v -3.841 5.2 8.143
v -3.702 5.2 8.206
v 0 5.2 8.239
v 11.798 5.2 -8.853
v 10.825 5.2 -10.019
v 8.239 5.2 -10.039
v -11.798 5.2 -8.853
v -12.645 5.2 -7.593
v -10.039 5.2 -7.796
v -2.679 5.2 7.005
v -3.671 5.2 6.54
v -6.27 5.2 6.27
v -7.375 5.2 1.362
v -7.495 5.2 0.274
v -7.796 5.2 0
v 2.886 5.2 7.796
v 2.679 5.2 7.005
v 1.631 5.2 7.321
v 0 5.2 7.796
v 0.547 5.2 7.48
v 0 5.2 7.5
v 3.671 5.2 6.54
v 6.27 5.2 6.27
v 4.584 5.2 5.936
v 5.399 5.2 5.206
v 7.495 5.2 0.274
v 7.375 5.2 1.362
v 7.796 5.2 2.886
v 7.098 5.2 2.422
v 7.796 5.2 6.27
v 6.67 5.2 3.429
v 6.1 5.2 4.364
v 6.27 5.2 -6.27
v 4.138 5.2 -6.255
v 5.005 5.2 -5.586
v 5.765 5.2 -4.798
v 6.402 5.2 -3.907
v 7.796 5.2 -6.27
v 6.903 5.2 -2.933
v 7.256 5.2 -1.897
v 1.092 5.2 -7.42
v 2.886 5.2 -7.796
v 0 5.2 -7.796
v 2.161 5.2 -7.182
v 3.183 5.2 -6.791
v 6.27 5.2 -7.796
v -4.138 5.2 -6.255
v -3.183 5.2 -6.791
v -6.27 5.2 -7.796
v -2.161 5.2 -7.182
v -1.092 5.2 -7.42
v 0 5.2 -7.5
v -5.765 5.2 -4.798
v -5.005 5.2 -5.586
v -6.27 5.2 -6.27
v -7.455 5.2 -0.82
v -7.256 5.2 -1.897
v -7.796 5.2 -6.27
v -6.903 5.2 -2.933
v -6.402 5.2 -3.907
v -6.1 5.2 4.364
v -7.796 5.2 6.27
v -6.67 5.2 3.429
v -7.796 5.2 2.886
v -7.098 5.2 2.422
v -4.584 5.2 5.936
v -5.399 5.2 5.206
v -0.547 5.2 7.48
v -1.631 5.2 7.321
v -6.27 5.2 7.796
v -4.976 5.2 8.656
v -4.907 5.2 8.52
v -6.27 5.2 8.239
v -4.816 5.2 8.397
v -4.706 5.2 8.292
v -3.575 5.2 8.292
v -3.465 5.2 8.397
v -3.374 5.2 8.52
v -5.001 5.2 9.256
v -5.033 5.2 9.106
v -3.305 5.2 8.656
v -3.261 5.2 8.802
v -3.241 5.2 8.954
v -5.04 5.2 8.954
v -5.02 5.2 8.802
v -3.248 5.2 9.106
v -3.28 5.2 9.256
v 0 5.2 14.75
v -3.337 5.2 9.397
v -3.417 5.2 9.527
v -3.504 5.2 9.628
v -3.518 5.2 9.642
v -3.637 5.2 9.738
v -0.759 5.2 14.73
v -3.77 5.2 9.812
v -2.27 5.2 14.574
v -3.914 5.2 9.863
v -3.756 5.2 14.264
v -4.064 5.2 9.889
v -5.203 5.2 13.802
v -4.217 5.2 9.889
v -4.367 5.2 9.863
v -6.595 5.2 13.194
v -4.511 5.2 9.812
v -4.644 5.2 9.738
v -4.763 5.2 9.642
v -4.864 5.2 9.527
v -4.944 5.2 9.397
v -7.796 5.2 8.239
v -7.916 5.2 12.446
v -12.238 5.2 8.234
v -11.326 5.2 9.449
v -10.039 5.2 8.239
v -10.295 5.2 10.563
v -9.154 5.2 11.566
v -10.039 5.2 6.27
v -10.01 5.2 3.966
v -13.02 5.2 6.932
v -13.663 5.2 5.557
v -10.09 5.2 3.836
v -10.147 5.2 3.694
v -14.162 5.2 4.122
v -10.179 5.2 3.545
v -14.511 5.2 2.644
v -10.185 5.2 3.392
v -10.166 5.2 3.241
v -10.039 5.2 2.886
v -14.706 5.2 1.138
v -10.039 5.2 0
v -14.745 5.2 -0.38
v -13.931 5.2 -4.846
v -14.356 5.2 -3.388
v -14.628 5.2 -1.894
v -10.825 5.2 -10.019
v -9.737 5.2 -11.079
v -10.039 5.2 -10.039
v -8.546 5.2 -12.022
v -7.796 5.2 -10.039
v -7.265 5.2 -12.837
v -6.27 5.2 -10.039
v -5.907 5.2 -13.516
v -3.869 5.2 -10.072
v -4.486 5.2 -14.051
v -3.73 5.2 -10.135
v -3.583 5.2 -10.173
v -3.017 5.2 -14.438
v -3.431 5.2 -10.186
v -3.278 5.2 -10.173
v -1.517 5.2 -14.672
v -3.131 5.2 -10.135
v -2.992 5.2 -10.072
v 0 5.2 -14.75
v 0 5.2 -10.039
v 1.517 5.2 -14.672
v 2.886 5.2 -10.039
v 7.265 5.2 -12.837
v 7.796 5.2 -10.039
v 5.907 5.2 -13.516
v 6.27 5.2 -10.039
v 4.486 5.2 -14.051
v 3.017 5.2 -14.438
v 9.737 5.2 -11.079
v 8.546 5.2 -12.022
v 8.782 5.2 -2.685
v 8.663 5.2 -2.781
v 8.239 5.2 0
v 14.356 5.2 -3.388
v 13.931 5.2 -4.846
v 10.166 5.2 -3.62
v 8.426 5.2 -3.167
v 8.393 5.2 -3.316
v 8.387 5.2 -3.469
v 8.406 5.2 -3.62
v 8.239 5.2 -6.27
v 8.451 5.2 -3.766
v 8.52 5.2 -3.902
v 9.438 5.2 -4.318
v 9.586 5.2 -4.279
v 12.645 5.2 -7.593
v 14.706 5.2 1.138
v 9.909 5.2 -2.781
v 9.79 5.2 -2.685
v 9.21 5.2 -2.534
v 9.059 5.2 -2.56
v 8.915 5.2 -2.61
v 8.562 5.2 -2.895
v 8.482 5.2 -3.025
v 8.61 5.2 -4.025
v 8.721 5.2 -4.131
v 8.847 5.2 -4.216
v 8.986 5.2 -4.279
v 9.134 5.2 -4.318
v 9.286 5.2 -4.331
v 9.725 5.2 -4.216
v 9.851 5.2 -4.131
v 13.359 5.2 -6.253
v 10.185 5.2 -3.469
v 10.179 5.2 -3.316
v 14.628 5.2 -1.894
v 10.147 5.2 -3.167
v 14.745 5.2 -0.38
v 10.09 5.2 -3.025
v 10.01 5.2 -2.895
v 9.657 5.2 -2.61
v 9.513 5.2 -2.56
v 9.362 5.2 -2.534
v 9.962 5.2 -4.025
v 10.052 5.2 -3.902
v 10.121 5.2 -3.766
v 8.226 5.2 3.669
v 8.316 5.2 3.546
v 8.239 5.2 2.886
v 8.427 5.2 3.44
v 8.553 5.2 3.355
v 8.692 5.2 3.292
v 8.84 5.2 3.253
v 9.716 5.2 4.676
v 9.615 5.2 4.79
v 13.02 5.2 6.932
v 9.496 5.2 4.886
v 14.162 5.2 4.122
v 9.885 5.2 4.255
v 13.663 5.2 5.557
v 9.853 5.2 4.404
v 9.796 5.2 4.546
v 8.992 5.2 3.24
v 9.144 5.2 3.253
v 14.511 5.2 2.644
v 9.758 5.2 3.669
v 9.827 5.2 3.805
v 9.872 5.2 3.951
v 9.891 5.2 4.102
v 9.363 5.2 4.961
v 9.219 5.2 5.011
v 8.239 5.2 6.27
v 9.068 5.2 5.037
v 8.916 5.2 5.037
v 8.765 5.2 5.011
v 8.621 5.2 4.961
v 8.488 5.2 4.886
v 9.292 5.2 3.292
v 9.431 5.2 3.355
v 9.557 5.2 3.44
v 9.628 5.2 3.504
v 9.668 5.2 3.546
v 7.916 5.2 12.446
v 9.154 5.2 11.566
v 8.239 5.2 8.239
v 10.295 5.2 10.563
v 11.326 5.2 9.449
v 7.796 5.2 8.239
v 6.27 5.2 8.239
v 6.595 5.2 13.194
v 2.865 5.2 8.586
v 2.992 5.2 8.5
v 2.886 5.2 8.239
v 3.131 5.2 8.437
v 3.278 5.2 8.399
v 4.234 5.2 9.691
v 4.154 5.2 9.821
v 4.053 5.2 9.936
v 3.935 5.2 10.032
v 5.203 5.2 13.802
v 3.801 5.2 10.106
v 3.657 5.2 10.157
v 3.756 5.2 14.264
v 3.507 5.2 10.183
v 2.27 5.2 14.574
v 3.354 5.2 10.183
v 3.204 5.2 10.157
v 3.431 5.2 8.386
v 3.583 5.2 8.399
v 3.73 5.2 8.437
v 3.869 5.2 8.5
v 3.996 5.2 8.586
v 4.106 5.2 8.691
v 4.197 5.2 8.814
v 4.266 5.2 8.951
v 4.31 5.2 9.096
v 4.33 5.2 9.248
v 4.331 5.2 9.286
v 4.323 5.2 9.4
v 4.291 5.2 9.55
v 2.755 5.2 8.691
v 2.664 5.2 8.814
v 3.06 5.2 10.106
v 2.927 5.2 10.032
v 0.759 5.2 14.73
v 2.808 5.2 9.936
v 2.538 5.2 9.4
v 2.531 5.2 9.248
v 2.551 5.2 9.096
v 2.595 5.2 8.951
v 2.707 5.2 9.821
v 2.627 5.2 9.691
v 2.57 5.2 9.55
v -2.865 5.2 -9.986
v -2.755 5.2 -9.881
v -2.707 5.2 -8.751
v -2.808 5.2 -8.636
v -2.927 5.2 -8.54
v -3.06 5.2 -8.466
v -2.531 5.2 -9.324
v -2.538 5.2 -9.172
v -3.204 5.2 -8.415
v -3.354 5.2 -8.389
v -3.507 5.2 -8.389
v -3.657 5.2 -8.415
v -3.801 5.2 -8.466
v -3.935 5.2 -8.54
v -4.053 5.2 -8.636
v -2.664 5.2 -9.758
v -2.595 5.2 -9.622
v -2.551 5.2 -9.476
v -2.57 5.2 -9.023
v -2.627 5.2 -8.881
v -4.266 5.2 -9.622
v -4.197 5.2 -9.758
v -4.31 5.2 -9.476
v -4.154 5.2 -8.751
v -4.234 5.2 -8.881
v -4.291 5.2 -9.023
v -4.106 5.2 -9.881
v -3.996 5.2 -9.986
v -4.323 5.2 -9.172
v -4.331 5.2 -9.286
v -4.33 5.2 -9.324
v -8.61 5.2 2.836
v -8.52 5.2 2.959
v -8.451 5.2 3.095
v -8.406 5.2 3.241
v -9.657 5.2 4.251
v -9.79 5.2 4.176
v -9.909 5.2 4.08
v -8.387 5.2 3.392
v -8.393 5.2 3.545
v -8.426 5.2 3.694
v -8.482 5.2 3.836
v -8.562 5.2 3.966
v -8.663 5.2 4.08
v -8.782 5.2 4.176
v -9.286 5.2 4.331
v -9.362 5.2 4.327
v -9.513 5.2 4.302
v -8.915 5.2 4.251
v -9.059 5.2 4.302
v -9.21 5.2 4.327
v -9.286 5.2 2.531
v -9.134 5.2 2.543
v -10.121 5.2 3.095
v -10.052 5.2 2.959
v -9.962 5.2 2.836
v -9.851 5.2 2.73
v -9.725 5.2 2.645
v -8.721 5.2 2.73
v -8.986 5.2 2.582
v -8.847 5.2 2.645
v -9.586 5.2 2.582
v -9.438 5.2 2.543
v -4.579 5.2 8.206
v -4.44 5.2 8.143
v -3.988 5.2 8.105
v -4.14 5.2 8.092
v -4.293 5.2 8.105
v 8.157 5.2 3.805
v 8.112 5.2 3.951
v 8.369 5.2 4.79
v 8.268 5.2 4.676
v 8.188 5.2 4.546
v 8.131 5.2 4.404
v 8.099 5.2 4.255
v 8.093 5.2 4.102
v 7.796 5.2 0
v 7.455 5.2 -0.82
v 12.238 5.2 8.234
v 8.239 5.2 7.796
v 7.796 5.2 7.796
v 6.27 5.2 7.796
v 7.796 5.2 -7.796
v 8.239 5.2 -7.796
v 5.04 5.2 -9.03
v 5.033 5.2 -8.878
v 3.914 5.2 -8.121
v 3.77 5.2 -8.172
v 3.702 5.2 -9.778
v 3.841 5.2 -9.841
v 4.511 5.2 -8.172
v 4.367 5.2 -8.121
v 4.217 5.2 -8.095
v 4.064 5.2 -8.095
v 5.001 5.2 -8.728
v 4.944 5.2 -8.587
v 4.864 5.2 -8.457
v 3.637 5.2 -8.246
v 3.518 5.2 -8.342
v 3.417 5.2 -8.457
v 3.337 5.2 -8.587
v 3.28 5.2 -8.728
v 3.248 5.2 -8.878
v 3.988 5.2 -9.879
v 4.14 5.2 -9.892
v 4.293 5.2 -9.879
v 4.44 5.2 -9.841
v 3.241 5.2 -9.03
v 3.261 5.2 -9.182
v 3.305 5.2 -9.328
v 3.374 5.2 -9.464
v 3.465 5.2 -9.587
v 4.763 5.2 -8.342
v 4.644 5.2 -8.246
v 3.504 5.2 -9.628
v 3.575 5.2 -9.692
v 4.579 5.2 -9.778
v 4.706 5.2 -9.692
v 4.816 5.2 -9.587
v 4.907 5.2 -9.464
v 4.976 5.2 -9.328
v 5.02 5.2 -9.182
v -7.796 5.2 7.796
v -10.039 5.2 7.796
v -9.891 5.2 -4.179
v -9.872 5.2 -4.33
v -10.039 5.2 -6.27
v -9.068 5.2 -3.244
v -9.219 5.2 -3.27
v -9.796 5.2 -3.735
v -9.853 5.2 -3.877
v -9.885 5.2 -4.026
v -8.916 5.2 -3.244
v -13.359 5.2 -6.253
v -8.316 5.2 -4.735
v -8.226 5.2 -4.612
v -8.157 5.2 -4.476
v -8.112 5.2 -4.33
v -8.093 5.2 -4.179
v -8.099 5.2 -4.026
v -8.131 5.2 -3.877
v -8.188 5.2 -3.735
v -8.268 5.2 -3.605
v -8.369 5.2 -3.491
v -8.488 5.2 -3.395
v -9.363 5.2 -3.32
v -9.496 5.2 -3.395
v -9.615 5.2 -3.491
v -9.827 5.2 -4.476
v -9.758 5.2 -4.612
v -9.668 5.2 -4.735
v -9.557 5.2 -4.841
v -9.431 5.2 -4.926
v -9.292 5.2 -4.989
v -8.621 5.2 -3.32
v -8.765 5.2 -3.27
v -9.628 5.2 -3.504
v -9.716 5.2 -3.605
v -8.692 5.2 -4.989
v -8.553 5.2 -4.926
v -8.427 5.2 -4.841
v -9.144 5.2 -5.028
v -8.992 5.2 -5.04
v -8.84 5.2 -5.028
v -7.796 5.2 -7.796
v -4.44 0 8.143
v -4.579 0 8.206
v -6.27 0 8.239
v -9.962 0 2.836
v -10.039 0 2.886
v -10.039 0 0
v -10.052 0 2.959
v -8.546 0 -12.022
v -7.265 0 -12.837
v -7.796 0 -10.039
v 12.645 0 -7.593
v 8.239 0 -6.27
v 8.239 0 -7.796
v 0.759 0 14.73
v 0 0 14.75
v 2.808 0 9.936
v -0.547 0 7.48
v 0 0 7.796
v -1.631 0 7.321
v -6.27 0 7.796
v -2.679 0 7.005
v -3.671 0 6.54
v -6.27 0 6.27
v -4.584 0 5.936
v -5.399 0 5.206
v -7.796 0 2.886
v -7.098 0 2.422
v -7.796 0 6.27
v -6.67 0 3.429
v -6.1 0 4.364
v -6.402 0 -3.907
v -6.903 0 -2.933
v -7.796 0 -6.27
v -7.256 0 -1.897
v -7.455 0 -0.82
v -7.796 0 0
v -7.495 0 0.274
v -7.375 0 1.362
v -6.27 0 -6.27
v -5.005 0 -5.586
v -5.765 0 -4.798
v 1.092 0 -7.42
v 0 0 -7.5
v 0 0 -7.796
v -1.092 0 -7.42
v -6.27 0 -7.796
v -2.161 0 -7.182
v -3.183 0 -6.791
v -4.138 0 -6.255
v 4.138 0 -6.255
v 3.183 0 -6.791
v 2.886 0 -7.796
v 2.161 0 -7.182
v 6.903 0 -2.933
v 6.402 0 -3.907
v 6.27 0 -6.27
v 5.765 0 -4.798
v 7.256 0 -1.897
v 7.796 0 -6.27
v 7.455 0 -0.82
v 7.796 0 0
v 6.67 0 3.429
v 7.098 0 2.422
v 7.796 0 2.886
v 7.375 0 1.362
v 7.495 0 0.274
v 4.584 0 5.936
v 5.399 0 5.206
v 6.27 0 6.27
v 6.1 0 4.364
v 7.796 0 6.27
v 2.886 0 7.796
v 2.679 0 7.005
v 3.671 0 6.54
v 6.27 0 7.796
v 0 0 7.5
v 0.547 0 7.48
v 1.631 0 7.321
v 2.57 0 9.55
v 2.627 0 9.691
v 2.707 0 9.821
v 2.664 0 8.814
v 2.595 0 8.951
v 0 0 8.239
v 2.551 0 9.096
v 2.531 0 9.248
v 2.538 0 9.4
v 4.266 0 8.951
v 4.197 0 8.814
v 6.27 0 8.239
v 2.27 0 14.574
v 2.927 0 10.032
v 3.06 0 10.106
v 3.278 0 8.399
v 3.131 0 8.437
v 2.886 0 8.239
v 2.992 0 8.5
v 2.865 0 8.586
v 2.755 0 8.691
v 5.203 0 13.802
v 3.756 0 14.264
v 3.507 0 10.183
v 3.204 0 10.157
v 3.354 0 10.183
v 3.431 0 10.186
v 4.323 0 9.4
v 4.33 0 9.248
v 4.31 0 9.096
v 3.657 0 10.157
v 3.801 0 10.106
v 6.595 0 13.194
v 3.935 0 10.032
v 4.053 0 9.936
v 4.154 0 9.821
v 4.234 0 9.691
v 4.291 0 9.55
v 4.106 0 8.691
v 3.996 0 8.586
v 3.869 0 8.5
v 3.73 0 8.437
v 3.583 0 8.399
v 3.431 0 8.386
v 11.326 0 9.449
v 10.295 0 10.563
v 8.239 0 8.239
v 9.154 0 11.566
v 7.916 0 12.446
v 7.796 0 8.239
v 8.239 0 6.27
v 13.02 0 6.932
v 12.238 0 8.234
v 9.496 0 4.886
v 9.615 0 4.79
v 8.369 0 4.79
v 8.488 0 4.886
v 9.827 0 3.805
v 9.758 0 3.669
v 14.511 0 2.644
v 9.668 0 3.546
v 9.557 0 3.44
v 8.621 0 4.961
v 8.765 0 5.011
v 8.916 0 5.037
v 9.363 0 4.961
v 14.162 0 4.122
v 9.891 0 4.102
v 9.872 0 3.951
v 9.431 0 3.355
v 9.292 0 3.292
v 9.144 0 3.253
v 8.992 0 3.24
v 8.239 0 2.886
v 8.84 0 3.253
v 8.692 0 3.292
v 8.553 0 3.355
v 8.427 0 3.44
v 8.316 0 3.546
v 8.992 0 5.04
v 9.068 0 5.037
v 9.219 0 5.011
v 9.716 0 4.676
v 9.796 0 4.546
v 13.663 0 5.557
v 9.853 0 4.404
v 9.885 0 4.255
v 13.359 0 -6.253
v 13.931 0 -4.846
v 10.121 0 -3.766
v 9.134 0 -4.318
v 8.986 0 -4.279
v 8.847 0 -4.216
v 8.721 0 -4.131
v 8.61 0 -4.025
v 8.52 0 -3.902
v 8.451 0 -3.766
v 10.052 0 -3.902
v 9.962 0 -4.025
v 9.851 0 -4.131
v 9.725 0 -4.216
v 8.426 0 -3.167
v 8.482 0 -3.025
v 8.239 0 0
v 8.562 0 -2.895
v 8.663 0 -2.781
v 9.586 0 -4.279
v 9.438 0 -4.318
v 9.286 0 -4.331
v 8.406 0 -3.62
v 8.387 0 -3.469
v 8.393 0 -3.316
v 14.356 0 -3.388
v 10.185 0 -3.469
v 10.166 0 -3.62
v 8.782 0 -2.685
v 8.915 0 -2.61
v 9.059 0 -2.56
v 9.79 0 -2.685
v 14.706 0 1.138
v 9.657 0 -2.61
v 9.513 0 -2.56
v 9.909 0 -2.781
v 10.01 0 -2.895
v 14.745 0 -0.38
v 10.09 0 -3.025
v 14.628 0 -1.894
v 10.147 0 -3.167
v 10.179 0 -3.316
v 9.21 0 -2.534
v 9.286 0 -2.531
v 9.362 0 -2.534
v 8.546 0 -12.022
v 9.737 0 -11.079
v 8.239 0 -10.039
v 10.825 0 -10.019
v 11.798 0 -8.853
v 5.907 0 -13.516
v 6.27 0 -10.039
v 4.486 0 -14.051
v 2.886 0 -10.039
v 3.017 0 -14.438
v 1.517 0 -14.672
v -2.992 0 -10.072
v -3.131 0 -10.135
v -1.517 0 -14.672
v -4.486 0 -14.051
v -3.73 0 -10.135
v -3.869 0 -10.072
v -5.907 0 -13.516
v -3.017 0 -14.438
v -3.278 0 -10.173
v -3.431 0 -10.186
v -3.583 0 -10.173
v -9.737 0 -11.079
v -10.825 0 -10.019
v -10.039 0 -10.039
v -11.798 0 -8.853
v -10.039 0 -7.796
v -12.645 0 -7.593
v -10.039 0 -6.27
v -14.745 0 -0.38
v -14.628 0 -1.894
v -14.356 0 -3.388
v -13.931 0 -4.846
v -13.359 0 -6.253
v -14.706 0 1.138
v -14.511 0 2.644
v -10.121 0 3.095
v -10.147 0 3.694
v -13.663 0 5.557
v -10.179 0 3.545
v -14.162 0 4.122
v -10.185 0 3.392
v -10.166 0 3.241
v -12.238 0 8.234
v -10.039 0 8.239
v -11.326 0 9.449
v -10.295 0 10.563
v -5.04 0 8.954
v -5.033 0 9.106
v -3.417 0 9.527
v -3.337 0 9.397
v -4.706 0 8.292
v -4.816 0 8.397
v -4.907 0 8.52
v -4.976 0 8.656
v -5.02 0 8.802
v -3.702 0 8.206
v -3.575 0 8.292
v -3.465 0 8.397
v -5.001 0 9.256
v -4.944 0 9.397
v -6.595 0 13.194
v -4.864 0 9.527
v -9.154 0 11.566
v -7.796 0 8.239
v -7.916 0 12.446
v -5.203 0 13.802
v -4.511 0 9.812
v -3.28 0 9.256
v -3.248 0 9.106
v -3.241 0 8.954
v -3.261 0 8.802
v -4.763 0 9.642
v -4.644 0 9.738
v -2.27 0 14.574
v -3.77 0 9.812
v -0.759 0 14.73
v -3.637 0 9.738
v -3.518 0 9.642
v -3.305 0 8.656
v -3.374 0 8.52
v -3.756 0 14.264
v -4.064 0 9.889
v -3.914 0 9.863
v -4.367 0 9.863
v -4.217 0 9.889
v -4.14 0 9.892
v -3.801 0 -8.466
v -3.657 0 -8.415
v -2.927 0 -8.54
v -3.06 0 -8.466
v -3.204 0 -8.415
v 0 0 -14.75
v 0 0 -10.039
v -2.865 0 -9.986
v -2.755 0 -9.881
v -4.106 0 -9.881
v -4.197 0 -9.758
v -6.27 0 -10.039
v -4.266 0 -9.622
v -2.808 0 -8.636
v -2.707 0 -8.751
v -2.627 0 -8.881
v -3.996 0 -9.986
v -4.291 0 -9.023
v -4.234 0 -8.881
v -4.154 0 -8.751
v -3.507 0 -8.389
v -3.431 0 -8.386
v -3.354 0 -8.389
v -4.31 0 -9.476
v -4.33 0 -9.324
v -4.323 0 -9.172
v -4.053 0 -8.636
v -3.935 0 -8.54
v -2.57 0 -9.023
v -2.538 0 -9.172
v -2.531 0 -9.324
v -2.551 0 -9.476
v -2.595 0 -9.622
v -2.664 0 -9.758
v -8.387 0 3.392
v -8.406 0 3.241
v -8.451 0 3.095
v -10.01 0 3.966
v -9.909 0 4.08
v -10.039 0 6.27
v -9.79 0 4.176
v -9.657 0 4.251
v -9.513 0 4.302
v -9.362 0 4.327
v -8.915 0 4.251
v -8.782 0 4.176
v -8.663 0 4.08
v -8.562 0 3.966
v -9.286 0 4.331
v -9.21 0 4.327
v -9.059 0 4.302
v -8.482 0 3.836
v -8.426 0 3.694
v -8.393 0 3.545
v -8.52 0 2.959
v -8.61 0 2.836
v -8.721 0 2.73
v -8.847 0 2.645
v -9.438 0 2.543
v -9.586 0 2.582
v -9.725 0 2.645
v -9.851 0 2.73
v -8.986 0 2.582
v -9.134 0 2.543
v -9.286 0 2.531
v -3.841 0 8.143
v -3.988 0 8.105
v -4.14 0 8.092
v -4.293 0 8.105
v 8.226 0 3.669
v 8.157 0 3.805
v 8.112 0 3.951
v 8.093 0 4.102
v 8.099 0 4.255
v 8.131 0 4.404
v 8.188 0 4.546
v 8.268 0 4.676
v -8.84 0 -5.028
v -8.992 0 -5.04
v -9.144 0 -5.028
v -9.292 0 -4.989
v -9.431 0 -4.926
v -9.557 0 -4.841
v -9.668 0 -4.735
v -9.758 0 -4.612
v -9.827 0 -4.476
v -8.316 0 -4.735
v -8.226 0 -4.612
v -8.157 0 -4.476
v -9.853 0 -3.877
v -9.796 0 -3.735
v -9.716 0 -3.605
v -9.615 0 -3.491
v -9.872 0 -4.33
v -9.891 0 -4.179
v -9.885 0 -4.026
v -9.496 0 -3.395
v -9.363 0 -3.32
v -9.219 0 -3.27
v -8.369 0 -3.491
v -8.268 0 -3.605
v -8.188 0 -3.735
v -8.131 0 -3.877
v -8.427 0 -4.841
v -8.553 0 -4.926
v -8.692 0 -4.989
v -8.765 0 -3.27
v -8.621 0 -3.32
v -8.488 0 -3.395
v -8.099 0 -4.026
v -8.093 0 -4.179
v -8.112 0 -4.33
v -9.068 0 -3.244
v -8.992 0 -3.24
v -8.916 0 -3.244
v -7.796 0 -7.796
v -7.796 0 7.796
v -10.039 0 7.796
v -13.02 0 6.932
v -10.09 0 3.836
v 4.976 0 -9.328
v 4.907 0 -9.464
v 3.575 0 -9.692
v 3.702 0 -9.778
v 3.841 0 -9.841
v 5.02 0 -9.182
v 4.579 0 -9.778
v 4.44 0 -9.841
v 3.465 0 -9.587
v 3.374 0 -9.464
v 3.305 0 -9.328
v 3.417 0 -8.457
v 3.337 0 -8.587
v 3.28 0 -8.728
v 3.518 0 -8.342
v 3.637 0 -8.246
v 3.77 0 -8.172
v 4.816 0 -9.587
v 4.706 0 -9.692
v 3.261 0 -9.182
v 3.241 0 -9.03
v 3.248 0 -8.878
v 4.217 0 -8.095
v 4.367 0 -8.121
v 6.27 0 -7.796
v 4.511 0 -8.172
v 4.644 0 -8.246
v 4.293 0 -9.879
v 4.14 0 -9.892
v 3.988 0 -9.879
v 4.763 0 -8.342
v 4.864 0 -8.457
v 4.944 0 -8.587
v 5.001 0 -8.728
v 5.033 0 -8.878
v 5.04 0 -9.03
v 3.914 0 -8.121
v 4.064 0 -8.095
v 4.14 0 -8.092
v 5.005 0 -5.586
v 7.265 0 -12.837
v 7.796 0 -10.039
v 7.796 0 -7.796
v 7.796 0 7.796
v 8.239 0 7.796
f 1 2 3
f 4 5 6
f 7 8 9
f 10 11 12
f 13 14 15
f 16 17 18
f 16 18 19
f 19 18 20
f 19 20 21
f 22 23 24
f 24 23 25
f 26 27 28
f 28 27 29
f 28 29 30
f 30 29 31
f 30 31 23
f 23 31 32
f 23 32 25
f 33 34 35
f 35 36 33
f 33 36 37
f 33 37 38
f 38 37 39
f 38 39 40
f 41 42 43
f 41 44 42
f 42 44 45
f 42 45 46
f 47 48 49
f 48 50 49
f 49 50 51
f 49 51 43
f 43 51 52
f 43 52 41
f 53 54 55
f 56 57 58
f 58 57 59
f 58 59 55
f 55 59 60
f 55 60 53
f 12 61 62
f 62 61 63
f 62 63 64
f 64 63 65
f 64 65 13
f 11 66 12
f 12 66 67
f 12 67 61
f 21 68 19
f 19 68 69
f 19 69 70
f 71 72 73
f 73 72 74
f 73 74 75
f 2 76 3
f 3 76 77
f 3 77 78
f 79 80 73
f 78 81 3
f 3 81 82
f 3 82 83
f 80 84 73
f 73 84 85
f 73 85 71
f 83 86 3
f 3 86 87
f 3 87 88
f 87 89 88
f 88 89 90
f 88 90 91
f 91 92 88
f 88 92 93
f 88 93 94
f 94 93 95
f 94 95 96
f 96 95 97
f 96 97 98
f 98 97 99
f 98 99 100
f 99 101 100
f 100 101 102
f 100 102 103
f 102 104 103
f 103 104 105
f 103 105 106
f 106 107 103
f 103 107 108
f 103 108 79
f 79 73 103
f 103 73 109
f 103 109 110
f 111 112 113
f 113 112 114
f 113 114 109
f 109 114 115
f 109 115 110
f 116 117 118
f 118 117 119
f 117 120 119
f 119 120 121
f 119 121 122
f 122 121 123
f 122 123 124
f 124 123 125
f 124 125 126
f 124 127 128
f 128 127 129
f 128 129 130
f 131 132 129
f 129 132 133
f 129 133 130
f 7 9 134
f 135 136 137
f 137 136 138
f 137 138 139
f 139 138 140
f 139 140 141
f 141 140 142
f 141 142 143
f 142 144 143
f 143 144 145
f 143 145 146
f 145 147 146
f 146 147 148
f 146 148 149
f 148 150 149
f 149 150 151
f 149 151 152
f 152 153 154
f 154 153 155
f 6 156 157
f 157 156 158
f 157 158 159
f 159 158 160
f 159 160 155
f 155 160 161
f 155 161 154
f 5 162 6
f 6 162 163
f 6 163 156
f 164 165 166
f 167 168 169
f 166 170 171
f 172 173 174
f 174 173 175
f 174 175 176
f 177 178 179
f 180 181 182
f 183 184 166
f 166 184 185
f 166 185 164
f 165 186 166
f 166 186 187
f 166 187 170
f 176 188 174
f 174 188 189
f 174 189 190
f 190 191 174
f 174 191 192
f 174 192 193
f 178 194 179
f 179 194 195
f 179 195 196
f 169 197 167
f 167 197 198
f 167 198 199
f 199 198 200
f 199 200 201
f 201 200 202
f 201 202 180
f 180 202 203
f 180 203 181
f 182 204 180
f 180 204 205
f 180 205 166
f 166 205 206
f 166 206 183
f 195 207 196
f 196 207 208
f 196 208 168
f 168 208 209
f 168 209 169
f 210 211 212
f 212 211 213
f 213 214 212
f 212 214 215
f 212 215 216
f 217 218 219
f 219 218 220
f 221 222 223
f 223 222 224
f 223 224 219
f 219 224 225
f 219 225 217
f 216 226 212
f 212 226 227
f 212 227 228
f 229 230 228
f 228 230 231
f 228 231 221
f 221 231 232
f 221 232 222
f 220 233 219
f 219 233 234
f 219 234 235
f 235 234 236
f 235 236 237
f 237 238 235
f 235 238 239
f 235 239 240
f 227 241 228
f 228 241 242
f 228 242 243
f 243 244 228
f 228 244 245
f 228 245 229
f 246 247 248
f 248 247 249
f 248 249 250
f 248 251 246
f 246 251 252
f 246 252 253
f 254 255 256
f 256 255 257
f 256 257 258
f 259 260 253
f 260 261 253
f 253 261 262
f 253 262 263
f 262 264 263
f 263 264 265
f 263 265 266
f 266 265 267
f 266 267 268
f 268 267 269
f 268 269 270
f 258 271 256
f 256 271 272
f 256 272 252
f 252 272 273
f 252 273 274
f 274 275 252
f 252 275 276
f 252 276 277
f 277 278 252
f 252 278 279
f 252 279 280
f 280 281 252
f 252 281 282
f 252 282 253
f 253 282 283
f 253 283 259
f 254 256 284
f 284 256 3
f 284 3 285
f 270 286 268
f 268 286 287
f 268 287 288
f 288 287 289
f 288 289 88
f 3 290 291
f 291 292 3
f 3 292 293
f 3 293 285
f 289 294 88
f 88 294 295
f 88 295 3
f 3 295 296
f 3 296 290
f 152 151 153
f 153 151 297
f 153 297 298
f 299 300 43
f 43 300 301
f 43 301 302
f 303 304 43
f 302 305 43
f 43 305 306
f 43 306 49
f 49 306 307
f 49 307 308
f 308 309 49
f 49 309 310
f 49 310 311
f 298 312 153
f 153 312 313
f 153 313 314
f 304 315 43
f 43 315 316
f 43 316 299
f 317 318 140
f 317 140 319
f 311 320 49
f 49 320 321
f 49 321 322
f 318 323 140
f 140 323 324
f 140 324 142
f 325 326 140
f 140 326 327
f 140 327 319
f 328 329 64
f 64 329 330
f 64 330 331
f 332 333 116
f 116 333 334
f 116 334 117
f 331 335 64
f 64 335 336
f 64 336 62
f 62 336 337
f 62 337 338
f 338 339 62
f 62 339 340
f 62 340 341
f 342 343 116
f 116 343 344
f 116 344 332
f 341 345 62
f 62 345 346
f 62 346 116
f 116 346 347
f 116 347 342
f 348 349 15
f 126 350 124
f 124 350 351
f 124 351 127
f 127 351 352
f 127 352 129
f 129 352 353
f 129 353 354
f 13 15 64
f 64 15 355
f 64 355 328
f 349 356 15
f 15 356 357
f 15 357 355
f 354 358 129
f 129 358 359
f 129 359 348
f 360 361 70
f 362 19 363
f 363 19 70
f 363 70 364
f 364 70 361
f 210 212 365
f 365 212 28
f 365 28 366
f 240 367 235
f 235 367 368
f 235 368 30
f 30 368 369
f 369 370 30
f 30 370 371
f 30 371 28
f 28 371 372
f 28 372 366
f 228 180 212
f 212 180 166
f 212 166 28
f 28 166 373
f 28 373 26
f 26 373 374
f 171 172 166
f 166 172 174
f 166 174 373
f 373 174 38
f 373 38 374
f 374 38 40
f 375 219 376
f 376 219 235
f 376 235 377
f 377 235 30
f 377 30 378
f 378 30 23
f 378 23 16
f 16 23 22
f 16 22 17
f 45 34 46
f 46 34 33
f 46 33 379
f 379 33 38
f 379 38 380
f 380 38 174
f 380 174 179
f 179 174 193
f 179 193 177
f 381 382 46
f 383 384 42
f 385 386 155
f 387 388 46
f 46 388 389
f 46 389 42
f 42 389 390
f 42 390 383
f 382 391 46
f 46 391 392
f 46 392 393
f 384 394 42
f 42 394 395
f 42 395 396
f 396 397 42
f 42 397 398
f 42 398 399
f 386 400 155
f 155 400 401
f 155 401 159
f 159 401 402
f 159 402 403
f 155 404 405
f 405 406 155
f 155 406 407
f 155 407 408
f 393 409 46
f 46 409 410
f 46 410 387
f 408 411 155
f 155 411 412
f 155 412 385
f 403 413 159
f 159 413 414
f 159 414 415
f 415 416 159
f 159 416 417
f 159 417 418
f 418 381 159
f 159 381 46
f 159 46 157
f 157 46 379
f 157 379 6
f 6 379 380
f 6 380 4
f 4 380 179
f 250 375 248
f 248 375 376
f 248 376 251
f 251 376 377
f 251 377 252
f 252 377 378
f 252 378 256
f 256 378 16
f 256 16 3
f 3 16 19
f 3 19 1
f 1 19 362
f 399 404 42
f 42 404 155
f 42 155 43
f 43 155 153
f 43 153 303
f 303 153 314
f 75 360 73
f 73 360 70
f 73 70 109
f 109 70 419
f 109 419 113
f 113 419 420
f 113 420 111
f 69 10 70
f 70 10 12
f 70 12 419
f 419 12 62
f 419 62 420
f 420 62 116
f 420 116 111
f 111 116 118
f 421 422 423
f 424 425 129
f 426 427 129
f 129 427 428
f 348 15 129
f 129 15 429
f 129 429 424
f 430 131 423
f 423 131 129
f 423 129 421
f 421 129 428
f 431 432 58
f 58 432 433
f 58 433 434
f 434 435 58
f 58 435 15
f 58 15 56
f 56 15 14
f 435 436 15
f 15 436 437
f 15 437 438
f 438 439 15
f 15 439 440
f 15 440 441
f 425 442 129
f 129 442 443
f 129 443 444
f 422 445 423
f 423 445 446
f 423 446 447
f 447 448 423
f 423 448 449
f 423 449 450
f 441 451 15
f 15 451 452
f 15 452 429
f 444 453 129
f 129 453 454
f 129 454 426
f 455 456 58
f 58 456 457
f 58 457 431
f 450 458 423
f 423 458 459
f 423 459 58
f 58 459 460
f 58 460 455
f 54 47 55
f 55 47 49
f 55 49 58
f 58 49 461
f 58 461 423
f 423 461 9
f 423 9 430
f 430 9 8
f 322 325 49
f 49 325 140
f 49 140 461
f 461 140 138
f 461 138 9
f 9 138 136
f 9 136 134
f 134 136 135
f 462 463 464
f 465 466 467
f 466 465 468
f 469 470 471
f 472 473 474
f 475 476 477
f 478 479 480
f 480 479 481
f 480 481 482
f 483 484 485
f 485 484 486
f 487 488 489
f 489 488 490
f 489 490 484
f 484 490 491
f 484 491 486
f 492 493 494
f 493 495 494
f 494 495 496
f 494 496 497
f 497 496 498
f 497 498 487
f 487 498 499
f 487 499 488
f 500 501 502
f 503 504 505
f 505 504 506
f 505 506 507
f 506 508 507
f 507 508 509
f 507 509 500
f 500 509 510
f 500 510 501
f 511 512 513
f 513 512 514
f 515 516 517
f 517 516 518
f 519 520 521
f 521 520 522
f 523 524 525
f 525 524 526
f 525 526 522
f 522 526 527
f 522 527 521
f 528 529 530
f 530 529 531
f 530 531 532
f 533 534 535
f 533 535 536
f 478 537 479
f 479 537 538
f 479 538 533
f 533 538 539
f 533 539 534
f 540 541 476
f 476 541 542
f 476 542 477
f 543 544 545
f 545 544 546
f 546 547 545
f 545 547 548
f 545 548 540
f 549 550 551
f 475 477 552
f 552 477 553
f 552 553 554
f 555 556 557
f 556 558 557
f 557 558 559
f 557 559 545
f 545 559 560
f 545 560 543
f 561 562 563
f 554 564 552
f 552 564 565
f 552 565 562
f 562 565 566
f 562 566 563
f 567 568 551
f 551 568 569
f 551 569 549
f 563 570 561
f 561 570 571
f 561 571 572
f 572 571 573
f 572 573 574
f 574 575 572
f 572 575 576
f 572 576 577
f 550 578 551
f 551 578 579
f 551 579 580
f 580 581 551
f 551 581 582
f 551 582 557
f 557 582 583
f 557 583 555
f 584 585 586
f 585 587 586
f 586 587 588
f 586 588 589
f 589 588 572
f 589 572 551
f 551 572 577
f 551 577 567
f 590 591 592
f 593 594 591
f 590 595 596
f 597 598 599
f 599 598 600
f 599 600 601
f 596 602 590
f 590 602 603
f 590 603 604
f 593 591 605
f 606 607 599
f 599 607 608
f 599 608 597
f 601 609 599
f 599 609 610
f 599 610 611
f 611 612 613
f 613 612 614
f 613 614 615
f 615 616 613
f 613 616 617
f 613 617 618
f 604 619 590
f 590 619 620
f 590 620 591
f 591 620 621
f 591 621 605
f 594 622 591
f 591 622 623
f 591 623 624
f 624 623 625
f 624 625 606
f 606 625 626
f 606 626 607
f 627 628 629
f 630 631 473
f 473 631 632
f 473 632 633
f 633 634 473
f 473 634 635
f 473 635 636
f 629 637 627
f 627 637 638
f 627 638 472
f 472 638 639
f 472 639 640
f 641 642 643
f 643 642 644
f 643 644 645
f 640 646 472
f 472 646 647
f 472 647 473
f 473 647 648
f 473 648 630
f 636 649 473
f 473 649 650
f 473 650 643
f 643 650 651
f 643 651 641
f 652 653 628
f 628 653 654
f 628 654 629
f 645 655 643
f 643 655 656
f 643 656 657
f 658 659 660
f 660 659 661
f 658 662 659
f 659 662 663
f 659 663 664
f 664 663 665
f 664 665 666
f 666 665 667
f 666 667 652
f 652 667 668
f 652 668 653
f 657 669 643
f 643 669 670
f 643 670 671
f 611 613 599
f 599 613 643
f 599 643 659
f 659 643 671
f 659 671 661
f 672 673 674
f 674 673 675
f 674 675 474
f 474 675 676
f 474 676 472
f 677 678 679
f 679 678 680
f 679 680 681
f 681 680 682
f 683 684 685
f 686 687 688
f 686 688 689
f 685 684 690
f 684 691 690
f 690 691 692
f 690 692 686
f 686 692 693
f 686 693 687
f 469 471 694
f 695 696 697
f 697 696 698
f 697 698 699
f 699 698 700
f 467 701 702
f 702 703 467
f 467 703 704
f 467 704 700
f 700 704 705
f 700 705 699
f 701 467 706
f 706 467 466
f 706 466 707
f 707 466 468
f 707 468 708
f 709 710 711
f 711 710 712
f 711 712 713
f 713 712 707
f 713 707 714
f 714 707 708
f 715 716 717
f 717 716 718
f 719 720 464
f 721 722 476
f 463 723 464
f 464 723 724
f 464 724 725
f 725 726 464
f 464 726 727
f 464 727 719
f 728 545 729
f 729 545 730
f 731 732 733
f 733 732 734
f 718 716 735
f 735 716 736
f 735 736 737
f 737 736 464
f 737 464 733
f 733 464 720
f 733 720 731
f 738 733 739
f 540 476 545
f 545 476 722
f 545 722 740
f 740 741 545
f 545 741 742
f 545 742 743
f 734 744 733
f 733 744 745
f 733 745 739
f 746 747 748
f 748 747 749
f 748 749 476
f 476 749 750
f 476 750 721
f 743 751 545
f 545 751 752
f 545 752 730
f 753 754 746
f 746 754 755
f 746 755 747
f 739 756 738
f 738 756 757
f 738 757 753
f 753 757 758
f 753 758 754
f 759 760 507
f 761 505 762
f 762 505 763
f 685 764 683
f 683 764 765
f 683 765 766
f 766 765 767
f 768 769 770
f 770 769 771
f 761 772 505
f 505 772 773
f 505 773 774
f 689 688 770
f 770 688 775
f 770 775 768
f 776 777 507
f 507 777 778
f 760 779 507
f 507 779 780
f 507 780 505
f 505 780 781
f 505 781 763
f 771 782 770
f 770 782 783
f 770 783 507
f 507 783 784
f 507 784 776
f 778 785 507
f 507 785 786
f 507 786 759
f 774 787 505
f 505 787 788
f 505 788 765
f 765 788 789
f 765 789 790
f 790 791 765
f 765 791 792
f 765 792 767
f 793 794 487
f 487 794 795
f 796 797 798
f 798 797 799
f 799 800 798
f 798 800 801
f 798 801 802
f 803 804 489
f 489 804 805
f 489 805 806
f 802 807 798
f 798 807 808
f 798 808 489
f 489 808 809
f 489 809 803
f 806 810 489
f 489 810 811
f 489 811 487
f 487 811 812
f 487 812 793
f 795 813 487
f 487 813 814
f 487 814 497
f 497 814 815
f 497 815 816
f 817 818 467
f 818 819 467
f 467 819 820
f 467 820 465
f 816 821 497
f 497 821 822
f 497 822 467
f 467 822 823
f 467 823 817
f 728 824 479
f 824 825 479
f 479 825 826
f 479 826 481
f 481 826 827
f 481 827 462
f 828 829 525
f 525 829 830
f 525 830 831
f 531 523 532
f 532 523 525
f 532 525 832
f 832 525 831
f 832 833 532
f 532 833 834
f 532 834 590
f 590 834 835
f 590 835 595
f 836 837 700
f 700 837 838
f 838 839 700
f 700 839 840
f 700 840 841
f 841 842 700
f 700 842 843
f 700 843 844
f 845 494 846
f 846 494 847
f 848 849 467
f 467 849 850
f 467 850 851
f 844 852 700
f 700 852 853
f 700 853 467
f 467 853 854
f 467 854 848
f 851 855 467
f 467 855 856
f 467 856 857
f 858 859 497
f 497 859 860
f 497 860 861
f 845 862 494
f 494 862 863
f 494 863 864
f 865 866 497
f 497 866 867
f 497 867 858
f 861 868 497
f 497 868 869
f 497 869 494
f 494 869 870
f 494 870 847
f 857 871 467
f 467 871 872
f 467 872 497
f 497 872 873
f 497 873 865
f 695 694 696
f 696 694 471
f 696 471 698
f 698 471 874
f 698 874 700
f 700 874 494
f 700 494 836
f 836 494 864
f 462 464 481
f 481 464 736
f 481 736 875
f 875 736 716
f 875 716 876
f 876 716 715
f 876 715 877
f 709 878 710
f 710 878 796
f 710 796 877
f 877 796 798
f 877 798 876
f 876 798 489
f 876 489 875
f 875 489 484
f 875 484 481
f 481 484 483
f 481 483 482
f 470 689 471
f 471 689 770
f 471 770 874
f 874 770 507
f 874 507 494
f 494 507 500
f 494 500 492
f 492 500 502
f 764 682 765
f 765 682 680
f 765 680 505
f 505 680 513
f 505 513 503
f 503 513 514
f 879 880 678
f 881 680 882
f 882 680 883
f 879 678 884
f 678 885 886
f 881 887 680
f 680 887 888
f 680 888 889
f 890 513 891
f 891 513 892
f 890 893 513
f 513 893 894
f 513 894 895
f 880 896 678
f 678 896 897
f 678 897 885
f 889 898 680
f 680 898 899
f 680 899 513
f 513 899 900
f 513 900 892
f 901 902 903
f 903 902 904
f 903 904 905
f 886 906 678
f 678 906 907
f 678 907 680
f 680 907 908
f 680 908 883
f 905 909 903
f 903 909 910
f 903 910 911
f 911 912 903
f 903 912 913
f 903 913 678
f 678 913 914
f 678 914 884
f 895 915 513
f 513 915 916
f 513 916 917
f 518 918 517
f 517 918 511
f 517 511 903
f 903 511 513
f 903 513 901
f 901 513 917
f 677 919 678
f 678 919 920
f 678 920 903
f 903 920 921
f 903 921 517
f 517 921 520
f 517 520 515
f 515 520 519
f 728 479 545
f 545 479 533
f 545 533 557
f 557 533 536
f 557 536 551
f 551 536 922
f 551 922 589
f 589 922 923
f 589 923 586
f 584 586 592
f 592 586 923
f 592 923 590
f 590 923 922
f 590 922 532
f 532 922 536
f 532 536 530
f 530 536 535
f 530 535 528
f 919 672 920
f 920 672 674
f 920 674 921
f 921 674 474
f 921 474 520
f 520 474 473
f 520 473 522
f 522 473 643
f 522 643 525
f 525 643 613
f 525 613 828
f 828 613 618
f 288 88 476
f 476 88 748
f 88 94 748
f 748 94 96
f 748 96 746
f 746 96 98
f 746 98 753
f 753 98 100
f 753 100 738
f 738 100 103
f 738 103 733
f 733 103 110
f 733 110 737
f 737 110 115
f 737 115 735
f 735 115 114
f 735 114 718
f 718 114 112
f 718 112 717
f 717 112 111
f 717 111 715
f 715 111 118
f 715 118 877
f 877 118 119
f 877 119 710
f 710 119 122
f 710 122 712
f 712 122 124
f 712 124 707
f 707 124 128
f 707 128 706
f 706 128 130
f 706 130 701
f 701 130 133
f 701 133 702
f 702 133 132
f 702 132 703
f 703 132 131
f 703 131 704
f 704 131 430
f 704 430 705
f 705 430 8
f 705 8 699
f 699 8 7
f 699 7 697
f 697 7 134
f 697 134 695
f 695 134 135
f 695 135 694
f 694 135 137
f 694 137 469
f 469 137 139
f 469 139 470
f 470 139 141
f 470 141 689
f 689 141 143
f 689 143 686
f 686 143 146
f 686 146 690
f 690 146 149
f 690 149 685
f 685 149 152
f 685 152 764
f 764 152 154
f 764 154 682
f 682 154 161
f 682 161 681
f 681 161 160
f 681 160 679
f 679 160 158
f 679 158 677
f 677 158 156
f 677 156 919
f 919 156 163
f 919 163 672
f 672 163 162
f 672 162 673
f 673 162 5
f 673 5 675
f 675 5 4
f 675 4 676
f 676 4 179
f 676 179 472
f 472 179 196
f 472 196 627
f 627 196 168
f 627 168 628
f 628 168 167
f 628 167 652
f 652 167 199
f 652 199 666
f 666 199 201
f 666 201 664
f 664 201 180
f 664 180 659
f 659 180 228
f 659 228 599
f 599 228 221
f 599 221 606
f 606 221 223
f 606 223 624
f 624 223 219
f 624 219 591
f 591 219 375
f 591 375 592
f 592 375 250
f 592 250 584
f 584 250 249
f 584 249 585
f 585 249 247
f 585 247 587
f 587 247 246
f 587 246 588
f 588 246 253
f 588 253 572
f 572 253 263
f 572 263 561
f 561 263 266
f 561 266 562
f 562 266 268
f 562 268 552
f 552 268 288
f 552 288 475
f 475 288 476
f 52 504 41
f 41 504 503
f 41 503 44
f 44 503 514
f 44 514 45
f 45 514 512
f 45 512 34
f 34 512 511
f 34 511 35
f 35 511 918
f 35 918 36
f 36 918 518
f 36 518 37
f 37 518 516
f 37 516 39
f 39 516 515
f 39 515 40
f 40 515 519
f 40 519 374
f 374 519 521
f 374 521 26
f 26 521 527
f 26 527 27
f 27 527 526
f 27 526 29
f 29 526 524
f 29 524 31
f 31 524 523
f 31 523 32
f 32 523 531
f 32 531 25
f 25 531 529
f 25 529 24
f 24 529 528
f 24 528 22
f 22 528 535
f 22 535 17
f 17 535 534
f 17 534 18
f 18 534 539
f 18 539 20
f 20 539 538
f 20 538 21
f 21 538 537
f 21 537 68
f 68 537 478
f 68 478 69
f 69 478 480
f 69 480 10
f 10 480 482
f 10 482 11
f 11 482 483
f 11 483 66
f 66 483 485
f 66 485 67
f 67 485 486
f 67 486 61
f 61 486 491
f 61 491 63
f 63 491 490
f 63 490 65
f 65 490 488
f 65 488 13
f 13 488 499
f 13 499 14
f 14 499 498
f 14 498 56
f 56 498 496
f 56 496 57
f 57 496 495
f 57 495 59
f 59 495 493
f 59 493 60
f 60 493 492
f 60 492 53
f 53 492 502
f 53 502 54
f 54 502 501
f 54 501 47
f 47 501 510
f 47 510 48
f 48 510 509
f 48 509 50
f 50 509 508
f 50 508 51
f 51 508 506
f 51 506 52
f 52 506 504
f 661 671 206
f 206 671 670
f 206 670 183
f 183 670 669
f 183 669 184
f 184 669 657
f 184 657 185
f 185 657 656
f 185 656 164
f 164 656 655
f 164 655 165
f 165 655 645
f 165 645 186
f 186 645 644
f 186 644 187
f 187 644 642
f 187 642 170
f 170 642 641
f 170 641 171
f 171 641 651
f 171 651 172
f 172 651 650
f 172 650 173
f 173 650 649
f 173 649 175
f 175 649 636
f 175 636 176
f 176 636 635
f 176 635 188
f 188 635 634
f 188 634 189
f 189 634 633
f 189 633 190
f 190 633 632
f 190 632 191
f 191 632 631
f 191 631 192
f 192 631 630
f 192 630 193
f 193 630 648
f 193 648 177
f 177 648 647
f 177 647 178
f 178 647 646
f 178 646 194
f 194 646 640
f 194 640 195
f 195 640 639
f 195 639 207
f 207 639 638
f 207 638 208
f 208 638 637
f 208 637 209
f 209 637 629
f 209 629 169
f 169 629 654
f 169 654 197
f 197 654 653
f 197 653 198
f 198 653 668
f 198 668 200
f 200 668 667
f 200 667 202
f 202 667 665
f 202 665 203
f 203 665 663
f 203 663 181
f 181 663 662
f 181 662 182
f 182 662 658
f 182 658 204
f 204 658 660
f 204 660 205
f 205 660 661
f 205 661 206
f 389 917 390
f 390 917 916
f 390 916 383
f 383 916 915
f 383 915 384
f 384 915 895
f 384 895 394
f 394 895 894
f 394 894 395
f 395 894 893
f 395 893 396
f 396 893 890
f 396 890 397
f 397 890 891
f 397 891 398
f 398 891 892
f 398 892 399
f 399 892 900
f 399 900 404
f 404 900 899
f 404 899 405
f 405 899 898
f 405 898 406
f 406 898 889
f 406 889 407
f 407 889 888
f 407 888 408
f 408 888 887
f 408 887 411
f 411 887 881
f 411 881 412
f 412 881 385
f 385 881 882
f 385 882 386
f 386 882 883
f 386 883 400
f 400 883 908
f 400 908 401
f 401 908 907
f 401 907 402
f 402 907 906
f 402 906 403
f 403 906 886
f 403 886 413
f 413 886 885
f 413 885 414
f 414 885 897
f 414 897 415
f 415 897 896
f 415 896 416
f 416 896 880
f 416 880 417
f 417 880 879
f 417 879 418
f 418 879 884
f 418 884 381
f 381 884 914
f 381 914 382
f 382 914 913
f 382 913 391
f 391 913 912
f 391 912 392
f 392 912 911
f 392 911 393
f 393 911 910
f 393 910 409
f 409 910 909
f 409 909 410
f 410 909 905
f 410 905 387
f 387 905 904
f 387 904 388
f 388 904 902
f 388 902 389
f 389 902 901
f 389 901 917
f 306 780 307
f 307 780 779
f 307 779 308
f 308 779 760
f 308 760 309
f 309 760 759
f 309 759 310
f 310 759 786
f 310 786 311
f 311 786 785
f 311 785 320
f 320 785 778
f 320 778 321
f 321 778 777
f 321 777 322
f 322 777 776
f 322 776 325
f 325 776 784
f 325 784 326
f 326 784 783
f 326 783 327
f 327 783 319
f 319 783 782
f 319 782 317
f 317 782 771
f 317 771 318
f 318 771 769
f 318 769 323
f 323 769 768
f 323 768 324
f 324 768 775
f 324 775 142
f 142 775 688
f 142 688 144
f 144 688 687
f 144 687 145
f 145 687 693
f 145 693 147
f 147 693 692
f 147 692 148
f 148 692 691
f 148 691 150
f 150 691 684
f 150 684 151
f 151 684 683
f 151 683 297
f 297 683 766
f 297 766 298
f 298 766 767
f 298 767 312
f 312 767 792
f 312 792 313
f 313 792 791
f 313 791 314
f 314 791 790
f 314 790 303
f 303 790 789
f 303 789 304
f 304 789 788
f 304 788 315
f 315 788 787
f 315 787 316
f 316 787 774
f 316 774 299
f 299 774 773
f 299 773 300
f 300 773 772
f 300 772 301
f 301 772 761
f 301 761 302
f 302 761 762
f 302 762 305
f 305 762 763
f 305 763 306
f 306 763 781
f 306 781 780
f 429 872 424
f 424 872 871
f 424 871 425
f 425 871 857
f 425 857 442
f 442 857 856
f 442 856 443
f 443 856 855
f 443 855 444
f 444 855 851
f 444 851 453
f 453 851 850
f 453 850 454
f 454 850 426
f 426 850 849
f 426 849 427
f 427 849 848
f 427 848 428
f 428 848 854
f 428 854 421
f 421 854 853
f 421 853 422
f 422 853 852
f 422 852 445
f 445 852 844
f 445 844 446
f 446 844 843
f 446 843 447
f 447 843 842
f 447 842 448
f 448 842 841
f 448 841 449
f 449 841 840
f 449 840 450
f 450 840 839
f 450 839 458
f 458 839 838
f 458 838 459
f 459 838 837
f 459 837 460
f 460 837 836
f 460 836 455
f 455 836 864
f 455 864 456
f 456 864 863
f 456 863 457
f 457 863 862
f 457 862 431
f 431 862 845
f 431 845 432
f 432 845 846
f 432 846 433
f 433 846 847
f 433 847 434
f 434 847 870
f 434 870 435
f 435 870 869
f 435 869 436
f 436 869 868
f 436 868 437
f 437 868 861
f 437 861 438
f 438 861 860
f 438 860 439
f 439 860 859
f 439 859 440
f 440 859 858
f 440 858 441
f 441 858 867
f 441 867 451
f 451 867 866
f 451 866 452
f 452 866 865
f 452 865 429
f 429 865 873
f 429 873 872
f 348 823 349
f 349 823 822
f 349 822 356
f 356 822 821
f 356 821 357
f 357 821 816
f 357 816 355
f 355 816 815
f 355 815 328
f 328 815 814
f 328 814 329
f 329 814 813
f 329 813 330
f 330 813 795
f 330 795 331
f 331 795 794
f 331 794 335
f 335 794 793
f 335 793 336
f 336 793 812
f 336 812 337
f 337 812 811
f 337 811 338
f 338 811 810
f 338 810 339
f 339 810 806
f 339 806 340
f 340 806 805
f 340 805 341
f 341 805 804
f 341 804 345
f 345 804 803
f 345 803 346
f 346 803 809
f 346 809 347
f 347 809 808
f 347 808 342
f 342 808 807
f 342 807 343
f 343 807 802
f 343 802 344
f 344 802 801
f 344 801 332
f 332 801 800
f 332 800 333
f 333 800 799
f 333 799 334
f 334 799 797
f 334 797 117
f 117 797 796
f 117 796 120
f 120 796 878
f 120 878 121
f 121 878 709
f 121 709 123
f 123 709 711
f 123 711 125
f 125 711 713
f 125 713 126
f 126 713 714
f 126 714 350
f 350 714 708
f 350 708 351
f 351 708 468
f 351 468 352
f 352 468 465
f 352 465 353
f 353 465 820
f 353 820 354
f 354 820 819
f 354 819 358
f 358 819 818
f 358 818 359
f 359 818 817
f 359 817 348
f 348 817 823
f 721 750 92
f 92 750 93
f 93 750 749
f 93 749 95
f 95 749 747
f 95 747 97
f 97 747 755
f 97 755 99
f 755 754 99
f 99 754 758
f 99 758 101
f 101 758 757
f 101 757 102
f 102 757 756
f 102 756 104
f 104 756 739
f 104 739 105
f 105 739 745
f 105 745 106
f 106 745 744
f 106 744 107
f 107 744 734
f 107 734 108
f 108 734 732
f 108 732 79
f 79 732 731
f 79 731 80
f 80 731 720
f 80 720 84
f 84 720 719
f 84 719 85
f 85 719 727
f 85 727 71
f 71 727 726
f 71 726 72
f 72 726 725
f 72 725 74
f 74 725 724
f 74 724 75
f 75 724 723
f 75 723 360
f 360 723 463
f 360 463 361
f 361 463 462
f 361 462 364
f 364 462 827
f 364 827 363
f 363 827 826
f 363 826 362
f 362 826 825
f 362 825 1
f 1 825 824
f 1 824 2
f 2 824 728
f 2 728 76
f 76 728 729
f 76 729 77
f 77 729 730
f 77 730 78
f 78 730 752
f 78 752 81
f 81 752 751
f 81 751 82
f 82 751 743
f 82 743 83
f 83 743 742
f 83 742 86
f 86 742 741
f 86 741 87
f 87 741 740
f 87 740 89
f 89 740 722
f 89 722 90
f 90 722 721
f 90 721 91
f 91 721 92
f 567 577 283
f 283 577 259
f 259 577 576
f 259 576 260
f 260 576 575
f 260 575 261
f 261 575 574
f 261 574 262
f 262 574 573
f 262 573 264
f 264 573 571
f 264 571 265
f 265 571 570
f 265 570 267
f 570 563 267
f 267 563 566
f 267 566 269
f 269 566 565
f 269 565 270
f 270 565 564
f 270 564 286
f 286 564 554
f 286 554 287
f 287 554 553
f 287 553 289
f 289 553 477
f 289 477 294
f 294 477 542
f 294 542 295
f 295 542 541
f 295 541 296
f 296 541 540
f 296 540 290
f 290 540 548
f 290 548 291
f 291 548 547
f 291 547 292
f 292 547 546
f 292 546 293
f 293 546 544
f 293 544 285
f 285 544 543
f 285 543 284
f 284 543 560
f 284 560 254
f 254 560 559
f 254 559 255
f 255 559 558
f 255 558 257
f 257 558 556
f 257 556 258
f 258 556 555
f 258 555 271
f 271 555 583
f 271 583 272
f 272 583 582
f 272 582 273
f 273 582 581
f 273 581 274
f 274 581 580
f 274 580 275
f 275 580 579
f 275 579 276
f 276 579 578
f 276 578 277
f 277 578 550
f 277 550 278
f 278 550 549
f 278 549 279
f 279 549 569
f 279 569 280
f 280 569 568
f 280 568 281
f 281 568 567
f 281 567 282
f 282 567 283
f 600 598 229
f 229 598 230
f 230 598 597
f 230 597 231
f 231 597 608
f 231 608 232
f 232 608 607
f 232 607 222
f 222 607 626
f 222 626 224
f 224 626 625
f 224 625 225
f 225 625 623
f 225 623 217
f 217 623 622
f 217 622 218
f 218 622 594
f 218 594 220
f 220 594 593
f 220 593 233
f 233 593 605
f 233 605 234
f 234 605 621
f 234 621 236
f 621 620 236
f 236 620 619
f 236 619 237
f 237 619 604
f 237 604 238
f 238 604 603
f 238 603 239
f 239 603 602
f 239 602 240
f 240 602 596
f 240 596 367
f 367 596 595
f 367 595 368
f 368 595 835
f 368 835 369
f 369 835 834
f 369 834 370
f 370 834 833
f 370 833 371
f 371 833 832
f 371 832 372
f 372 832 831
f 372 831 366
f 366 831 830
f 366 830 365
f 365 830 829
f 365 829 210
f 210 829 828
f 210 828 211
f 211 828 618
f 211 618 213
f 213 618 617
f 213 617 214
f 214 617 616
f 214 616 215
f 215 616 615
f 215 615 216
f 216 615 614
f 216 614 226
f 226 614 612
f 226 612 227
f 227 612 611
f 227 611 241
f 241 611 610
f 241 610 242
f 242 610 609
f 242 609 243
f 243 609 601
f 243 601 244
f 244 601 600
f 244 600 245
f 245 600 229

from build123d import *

# Parameters (mm, degrees)
SKETCH_1_R               = 14.75
SKETCH_1_R_2             = 7.5
EXTRUDE_1_DEPTH          = 5.2
SKETCH_2_R               = 0.9
CUT_EXTRUDE_1_DEPTH      = 25.266952837
PATTERN_CIRCULAR_1_COUNT = 8


with BuildPart() as part:
    # 草图1 → 凸台-拉伸1 (new body)
    with BuildSketch(Plane(origin=(0, 0, 0), x_dir=(1, 0, 0), z_dir=(0, 1, 0))):
        with Locations(Location((0, 0, 0), (0, 0, 270))):
            Circle(SKETCH_1_R)
        with Locations(Location((0, 0, 0), (0, 0, 270))):
            Circle(SKETCH_1_R_2, mode=Mode.SUBTRACT)
    extrude(amount=EXTRUDE_1_DEPTH)

    # 草图2 → 切除-拉伸1 (cut, through all)
    with BuildSketch(Plane.XZ.offset(7.2)):
        with Locations(Location((9.28608339, -3.430547373, 0), (0, 0, 270))):
            Circle(SKETCH_2_R)
    cut_extrude_1 = extrude(amount=-CUT_EXTRUDE_1_DEPTH, mode=Mode.SUBTRACT)

    # 阵列(圆周)1: 切除-拉伸1 ×8 about axis
    pattern_circular_1_axis = Axis((0, 0, 0), (0, 1, 0))
    for i in range(1, PATTERN_CIRCULAR_1_COUNT):
        add(cut_extrude_1.rotate(pattern_circular_1_axis, i * 360 / PATTERN_CIRCULAR_1_COUNT), mode=Mode.SUBTRACT)


solid = part.part
